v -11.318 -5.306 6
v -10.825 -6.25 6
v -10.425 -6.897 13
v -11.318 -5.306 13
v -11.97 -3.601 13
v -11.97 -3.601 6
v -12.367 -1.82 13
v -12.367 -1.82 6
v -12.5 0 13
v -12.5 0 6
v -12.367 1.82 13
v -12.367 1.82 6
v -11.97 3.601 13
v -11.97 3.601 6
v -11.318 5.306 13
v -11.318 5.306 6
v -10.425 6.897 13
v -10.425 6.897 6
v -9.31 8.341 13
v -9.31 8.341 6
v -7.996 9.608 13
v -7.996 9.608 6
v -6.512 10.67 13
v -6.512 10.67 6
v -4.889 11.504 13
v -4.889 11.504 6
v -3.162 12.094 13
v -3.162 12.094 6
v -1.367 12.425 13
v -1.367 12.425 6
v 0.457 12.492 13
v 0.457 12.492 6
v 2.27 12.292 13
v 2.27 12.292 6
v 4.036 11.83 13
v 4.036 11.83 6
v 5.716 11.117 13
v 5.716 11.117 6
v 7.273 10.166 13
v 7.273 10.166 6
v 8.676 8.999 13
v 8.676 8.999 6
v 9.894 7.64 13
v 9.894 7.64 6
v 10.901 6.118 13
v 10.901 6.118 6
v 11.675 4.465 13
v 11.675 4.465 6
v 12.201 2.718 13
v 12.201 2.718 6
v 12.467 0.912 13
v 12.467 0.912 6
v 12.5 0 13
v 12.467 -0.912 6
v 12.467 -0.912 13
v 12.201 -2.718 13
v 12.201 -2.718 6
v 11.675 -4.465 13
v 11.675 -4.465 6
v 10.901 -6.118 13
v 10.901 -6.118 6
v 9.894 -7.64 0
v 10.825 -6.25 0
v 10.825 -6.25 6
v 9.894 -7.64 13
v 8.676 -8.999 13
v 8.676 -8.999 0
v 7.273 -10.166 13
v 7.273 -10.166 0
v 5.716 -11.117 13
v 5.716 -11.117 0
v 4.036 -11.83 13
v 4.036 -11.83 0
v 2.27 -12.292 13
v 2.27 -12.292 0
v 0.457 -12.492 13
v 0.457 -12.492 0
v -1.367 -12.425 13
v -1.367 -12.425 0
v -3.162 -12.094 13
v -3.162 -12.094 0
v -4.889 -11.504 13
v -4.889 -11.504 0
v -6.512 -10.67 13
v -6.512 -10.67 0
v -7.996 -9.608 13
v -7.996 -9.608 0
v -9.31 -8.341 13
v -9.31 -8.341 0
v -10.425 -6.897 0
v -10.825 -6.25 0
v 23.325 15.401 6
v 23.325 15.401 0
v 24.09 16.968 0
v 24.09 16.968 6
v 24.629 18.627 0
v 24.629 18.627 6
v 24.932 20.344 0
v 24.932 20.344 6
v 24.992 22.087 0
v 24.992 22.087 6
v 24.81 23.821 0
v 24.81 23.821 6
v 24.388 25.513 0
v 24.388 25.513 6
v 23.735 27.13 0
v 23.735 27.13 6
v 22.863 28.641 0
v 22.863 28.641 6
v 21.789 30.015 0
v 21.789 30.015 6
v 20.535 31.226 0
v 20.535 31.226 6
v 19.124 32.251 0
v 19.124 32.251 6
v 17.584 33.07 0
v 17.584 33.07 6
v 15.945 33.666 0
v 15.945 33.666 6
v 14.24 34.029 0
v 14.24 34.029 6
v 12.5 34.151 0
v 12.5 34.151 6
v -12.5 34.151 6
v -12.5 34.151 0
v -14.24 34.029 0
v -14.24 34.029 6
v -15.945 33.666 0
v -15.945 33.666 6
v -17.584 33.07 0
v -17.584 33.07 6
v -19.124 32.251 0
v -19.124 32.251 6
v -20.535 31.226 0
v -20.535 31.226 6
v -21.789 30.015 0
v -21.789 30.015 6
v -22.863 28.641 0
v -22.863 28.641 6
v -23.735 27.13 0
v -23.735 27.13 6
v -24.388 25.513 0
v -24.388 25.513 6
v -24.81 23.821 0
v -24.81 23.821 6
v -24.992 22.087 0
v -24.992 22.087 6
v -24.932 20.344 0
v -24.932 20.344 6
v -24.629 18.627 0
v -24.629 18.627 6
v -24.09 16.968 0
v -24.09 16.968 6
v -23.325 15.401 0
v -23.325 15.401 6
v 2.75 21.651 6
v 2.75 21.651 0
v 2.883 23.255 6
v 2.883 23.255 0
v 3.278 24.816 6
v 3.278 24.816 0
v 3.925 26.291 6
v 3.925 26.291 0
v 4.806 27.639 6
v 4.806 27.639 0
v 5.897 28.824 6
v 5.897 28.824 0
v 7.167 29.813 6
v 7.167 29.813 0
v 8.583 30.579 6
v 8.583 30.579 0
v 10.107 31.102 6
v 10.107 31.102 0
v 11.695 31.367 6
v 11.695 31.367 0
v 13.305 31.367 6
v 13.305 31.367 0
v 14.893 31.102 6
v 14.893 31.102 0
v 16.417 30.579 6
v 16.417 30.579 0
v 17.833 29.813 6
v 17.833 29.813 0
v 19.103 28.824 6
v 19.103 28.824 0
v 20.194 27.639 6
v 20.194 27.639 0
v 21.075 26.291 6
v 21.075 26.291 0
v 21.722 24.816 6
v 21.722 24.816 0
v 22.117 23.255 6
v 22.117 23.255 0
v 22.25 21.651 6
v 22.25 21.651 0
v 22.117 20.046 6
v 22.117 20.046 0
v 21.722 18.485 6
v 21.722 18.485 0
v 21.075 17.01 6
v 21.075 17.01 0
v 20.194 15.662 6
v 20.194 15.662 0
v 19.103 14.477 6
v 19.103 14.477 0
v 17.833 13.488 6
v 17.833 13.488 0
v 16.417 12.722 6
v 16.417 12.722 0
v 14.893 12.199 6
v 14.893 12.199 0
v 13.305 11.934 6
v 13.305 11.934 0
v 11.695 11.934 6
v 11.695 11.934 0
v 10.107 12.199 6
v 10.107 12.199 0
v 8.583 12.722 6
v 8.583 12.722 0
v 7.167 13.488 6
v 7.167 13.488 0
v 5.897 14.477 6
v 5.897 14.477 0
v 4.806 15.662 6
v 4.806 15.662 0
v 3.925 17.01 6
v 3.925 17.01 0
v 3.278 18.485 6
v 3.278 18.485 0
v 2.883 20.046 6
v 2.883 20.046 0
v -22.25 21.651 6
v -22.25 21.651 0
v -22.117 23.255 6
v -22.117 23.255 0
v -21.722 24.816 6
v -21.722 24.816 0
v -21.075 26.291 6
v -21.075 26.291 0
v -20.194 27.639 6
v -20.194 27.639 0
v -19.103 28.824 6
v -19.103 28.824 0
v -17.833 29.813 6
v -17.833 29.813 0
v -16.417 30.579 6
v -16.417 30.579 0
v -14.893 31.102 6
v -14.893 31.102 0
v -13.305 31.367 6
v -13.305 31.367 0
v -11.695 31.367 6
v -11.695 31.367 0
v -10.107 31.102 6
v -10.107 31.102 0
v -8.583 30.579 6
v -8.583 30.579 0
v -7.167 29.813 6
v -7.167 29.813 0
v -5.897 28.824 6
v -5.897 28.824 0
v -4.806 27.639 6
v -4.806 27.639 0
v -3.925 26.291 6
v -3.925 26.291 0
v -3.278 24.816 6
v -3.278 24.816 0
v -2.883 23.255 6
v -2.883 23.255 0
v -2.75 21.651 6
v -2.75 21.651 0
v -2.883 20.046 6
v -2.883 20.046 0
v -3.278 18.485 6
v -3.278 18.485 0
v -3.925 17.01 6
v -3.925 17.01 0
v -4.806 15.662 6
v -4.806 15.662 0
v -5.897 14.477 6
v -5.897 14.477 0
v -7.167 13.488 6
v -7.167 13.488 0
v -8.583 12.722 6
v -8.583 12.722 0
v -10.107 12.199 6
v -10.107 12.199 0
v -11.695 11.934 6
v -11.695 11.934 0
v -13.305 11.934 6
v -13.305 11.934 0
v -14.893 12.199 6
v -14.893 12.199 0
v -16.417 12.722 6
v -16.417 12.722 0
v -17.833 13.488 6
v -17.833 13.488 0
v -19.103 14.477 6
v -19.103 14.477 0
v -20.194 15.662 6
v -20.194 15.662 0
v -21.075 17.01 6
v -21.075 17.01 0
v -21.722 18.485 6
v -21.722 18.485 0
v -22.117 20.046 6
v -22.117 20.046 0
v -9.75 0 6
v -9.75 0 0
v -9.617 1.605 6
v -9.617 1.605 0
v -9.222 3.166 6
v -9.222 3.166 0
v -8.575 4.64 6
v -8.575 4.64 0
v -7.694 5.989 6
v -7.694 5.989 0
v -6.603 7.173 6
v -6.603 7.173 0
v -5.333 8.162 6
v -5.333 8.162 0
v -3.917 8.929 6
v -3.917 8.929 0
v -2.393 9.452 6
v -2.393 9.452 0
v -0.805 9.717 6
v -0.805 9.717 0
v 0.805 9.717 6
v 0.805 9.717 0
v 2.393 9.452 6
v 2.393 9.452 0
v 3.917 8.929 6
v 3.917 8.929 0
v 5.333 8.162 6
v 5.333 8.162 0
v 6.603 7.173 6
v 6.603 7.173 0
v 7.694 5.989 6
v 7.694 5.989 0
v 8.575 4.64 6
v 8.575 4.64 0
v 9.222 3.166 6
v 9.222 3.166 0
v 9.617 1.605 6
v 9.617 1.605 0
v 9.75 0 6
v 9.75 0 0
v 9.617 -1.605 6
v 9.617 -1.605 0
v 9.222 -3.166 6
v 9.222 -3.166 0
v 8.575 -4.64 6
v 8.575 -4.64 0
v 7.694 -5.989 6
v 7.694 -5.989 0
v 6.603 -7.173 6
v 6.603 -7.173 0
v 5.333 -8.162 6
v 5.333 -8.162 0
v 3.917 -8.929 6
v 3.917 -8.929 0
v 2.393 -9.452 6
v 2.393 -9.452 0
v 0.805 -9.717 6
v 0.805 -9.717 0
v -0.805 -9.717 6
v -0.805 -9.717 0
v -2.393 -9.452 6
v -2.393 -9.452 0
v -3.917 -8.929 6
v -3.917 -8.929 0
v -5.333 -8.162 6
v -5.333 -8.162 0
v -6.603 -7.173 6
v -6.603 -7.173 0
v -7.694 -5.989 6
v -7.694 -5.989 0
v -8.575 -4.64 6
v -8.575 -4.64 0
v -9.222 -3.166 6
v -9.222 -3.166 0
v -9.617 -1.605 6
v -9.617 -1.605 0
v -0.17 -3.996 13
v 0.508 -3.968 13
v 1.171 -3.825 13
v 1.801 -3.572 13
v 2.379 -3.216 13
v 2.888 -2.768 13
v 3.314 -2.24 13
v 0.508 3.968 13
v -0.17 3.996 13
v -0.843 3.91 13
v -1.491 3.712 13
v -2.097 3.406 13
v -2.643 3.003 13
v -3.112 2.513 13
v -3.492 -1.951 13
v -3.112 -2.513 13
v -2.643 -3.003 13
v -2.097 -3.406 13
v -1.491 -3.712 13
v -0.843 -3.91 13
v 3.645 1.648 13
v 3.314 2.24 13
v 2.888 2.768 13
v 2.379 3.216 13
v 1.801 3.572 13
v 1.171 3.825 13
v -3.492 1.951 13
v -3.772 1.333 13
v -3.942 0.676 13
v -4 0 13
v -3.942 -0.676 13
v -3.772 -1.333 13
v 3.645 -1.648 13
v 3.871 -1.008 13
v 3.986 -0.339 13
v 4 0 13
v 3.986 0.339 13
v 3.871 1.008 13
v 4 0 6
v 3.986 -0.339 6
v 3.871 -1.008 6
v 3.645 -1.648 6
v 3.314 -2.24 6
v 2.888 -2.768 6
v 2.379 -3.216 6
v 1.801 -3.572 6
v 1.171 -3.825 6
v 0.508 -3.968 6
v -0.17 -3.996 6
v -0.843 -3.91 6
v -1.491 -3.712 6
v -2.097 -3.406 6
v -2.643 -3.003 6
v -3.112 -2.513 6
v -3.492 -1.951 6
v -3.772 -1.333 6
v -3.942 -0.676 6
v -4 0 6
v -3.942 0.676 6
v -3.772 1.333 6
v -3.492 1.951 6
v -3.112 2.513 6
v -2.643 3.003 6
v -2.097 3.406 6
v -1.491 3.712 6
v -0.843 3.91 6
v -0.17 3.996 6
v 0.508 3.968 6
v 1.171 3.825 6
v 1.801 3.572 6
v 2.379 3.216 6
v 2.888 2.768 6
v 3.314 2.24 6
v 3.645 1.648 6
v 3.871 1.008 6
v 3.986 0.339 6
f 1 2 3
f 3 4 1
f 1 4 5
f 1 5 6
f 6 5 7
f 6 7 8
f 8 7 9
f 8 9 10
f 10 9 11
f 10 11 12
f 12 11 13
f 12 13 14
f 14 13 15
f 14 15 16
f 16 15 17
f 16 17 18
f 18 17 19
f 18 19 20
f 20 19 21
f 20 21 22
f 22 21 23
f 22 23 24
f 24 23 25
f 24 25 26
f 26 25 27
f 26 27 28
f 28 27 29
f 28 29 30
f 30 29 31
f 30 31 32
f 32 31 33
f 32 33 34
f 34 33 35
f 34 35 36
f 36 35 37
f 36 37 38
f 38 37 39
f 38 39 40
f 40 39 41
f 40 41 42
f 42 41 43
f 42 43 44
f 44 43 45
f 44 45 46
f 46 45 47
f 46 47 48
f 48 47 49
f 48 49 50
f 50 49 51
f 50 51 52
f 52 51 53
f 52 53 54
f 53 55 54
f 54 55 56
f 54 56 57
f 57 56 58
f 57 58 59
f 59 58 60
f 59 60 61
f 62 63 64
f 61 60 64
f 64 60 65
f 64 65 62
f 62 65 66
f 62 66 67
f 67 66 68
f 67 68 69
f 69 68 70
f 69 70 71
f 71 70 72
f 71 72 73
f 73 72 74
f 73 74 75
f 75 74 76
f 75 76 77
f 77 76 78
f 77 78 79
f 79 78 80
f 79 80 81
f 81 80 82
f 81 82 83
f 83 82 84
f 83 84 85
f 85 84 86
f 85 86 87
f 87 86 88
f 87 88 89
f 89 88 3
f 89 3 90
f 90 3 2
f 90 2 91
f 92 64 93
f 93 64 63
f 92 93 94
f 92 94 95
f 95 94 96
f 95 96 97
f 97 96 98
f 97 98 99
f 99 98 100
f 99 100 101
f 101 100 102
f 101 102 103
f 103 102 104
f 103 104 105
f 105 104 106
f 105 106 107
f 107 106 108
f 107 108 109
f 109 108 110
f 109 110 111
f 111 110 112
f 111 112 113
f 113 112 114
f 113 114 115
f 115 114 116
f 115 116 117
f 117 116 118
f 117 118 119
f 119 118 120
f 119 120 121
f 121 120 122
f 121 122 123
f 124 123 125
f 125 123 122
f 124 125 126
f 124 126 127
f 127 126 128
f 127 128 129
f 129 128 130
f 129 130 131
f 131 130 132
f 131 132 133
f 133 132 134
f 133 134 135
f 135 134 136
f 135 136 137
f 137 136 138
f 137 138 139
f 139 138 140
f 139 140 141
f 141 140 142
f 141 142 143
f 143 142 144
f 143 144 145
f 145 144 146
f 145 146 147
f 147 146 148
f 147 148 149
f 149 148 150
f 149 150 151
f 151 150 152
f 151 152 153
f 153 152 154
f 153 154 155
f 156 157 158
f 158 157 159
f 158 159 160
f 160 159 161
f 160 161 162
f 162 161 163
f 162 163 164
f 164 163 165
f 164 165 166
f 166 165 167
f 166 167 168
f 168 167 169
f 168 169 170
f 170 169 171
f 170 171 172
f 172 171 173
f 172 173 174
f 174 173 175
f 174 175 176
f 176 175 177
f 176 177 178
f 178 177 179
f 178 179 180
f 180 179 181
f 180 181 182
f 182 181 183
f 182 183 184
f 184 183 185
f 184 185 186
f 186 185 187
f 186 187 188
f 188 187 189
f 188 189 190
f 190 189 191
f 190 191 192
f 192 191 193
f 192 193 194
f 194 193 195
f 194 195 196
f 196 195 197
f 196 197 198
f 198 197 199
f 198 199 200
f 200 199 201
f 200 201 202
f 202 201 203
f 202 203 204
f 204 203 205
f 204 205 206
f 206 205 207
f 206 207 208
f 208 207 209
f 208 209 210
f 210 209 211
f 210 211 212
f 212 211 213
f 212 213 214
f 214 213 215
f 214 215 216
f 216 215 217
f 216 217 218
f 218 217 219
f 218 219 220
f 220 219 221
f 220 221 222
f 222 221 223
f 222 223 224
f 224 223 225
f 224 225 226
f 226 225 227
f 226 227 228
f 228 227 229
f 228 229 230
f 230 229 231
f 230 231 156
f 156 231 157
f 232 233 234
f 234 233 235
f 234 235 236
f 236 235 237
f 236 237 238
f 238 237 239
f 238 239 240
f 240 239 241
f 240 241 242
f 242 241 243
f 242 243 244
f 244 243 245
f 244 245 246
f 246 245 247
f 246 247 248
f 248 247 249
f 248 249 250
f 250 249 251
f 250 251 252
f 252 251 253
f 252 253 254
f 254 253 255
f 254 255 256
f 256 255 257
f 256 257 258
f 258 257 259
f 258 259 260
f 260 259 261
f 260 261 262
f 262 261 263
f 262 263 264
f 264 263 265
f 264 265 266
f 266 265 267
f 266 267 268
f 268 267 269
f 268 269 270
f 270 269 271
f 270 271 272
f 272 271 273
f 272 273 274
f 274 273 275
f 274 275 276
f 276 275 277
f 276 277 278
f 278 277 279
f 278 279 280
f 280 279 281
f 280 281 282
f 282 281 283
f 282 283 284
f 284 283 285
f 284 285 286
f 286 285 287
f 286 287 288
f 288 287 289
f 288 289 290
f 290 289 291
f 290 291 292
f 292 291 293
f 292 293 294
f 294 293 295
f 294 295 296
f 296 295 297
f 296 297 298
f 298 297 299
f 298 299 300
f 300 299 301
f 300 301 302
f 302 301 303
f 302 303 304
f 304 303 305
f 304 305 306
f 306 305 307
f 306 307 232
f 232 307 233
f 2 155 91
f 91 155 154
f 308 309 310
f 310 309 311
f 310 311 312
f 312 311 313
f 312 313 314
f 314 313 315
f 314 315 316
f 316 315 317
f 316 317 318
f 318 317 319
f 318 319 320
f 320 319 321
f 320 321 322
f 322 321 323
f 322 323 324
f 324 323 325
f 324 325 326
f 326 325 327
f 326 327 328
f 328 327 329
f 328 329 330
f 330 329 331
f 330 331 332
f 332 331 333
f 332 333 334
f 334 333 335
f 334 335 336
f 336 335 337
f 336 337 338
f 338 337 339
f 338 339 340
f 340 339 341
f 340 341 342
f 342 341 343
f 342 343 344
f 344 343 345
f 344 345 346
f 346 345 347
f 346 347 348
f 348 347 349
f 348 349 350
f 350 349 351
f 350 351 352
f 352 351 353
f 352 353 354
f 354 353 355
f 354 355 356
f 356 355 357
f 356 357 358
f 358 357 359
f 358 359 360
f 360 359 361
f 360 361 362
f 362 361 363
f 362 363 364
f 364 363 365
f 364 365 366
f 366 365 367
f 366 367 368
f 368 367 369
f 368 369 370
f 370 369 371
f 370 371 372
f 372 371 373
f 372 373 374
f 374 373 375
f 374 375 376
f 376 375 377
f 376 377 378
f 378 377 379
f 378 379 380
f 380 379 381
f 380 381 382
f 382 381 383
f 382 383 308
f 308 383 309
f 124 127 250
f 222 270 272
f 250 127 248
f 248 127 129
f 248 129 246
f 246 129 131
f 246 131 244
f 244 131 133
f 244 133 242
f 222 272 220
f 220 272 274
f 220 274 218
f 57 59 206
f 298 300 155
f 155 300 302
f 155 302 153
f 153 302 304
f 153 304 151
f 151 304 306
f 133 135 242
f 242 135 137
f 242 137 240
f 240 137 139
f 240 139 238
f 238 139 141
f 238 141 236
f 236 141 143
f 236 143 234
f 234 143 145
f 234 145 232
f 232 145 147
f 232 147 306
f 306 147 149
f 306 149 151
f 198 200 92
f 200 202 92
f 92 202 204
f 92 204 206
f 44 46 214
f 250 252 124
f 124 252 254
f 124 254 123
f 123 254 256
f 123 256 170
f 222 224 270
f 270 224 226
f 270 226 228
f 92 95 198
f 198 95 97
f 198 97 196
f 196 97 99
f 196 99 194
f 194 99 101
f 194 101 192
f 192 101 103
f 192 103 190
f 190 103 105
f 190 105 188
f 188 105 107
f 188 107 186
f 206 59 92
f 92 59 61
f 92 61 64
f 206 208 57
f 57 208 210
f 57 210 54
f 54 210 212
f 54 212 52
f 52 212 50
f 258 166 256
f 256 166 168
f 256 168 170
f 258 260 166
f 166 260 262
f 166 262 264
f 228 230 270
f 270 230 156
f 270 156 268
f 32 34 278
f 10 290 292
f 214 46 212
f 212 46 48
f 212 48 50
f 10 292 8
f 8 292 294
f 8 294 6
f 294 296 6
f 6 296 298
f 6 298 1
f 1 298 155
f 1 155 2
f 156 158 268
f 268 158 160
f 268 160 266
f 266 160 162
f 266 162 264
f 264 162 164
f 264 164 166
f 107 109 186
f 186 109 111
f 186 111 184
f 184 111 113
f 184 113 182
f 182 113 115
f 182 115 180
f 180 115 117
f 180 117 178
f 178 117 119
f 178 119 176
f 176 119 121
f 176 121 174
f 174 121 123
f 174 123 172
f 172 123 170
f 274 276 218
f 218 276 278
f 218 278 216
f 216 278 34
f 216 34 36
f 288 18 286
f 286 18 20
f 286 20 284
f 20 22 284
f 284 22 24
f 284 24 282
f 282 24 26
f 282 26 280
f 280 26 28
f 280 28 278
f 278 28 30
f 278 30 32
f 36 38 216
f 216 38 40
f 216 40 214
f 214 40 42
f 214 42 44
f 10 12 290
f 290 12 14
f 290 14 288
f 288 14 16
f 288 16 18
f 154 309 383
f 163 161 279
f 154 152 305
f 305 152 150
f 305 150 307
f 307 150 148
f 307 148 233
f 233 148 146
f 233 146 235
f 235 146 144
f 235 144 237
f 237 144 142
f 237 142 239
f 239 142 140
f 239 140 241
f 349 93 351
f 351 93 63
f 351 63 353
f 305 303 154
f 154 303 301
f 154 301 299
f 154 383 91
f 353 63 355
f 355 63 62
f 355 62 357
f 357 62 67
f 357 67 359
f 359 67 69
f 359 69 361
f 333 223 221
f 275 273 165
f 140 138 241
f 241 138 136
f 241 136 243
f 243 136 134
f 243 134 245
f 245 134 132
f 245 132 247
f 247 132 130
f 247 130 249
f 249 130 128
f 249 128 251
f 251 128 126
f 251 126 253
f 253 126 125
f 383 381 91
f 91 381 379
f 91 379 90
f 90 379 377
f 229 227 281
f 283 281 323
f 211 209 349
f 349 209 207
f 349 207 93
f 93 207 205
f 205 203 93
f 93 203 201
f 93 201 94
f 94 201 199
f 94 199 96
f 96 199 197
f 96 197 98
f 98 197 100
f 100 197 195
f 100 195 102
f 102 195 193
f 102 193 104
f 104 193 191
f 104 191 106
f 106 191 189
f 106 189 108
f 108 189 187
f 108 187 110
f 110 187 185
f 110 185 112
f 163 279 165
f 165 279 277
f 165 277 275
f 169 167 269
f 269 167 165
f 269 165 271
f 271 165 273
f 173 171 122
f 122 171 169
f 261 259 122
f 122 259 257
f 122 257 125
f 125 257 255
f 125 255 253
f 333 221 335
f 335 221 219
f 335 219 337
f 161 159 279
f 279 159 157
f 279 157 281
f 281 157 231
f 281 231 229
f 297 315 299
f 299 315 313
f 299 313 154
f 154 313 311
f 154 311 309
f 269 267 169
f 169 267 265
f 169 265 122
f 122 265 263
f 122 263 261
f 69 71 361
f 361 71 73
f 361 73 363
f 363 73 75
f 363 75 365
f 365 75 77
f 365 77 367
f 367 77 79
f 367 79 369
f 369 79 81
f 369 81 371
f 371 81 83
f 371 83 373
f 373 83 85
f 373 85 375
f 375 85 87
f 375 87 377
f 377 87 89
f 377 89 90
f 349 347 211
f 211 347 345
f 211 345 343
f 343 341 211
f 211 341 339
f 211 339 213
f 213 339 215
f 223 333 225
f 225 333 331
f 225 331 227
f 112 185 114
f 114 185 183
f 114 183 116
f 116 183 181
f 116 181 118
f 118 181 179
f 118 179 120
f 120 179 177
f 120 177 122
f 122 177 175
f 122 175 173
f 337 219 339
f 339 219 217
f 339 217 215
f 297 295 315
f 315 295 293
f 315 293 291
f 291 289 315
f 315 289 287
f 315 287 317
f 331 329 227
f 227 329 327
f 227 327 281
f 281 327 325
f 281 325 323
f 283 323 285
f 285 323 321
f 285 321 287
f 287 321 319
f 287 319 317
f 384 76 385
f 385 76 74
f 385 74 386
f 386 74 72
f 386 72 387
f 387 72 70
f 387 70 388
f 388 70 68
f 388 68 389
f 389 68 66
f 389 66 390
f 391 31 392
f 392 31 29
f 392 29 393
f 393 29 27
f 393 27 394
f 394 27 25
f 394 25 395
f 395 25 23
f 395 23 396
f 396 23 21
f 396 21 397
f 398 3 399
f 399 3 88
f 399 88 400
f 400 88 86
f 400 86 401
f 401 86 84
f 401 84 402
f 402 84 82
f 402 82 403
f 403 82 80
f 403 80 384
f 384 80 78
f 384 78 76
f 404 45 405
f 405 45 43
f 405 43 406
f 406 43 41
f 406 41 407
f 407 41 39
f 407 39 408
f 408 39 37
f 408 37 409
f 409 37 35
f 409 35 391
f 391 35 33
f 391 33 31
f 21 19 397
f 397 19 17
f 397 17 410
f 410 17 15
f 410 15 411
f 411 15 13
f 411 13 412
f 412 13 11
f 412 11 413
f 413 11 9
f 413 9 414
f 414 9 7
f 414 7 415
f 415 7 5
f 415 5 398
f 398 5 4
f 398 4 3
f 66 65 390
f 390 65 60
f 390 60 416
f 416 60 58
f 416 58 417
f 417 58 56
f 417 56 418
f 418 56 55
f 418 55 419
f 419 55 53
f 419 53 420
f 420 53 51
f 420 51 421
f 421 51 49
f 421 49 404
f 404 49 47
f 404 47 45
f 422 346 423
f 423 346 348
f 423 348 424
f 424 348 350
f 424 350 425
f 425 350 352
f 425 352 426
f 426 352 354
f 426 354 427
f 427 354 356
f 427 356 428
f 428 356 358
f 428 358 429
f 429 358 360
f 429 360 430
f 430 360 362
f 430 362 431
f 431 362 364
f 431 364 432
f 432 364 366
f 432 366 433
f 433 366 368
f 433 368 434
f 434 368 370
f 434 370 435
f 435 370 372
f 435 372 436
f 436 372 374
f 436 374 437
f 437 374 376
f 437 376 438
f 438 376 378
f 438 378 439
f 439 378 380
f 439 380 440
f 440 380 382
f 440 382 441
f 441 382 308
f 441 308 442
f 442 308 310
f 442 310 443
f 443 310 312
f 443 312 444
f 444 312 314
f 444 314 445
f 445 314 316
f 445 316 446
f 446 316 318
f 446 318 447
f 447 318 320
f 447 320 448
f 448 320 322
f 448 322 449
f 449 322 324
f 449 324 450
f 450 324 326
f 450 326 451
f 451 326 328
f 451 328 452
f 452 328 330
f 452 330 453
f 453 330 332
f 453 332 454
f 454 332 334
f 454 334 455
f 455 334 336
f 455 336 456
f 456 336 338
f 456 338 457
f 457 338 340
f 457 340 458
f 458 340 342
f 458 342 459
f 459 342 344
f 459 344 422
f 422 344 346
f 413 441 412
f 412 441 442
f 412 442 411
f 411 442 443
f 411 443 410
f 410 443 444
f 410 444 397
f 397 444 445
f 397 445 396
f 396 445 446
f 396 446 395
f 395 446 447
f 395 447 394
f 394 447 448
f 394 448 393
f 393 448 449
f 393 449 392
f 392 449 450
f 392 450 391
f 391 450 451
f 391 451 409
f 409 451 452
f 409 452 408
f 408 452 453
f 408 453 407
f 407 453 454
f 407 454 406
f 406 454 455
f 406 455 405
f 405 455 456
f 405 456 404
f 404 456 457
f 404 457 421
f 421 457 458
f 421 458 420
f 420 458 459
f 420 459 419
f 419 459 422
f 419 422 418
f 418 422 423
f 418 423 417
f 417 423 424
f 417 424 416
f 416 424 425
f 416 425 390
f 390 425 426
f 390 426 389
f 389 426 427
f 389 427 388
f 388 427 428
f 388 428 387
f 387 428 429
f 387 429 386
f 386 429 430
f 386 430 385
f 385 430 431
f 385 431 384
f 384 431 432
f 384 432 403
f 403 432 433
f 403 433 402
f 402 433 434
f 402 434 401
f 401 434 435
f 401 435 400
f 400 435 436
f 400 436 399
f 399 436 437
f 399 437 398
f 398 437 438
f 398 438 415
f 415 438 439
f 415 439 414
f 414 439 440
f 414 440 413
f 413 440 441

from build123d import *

# Parameters (mm, degrees)
CROQUIS1_R              = 9.75
SALIENTE_EXTRUIR1_DEPTH = 6
CROQUIS2_R              = 12.5
CROQUIS2_R_2            = 4
SALIENTE_EXTRUIR3_DEPTH = 7


with BuildPart() as part:
    # Croquis1 → Saliente-Extruir1 (new body)
    with BuildSketch(Plane.XY):
        with BuildLine():
            Line((-23.325317547, 15.400635095), (-10.825317547, -6.25))
            ThreePointArc((-10.825317547, -6.25), (0, -12.5), (10.825317547, -6.25))
            Line((10.825317547, -6.25), (23.325317547, 15.400635095))
            ThreePointArc((23.325317547, 15.400635095), (23.325317547, 27.900635095), (12.5, 34.150635095))
            Line((12.5, 34.150635095), (-12.5, 34.150635095))
            ThreePointArc((-12.5, 34.150635095), (-23.325317547, 27.900635095), (-23.325317547, 15.400635095))
        make_face()
        Circle(CROQUIS1_R, mode=Mode.SUBTRACT)
        with Locations((12.5, 21.650635095)):
            Circle(CROQUIS1_R, mode=Mode.SUBTRACT)
        with Locations((-12.5, 21.650635095)):
            Circle(CROQUIS1_R, mode=Mode.SUBTRACT)
    extrude(amount=SALIENTE_EXTRUIR1_DEPTH)

    # Croquis2 → Saliente-Extruir3 (add)
    with BuildSketch(Plane.XY.offset(6)):
        Circle(CROQUIS2_R)
        Circle(CROQUIS2_R_2, mode=Mode.SUBTRACT)
    extrude(amount=SALIENTE_EXTRUIR3_DEPTH)


solid = part.part
